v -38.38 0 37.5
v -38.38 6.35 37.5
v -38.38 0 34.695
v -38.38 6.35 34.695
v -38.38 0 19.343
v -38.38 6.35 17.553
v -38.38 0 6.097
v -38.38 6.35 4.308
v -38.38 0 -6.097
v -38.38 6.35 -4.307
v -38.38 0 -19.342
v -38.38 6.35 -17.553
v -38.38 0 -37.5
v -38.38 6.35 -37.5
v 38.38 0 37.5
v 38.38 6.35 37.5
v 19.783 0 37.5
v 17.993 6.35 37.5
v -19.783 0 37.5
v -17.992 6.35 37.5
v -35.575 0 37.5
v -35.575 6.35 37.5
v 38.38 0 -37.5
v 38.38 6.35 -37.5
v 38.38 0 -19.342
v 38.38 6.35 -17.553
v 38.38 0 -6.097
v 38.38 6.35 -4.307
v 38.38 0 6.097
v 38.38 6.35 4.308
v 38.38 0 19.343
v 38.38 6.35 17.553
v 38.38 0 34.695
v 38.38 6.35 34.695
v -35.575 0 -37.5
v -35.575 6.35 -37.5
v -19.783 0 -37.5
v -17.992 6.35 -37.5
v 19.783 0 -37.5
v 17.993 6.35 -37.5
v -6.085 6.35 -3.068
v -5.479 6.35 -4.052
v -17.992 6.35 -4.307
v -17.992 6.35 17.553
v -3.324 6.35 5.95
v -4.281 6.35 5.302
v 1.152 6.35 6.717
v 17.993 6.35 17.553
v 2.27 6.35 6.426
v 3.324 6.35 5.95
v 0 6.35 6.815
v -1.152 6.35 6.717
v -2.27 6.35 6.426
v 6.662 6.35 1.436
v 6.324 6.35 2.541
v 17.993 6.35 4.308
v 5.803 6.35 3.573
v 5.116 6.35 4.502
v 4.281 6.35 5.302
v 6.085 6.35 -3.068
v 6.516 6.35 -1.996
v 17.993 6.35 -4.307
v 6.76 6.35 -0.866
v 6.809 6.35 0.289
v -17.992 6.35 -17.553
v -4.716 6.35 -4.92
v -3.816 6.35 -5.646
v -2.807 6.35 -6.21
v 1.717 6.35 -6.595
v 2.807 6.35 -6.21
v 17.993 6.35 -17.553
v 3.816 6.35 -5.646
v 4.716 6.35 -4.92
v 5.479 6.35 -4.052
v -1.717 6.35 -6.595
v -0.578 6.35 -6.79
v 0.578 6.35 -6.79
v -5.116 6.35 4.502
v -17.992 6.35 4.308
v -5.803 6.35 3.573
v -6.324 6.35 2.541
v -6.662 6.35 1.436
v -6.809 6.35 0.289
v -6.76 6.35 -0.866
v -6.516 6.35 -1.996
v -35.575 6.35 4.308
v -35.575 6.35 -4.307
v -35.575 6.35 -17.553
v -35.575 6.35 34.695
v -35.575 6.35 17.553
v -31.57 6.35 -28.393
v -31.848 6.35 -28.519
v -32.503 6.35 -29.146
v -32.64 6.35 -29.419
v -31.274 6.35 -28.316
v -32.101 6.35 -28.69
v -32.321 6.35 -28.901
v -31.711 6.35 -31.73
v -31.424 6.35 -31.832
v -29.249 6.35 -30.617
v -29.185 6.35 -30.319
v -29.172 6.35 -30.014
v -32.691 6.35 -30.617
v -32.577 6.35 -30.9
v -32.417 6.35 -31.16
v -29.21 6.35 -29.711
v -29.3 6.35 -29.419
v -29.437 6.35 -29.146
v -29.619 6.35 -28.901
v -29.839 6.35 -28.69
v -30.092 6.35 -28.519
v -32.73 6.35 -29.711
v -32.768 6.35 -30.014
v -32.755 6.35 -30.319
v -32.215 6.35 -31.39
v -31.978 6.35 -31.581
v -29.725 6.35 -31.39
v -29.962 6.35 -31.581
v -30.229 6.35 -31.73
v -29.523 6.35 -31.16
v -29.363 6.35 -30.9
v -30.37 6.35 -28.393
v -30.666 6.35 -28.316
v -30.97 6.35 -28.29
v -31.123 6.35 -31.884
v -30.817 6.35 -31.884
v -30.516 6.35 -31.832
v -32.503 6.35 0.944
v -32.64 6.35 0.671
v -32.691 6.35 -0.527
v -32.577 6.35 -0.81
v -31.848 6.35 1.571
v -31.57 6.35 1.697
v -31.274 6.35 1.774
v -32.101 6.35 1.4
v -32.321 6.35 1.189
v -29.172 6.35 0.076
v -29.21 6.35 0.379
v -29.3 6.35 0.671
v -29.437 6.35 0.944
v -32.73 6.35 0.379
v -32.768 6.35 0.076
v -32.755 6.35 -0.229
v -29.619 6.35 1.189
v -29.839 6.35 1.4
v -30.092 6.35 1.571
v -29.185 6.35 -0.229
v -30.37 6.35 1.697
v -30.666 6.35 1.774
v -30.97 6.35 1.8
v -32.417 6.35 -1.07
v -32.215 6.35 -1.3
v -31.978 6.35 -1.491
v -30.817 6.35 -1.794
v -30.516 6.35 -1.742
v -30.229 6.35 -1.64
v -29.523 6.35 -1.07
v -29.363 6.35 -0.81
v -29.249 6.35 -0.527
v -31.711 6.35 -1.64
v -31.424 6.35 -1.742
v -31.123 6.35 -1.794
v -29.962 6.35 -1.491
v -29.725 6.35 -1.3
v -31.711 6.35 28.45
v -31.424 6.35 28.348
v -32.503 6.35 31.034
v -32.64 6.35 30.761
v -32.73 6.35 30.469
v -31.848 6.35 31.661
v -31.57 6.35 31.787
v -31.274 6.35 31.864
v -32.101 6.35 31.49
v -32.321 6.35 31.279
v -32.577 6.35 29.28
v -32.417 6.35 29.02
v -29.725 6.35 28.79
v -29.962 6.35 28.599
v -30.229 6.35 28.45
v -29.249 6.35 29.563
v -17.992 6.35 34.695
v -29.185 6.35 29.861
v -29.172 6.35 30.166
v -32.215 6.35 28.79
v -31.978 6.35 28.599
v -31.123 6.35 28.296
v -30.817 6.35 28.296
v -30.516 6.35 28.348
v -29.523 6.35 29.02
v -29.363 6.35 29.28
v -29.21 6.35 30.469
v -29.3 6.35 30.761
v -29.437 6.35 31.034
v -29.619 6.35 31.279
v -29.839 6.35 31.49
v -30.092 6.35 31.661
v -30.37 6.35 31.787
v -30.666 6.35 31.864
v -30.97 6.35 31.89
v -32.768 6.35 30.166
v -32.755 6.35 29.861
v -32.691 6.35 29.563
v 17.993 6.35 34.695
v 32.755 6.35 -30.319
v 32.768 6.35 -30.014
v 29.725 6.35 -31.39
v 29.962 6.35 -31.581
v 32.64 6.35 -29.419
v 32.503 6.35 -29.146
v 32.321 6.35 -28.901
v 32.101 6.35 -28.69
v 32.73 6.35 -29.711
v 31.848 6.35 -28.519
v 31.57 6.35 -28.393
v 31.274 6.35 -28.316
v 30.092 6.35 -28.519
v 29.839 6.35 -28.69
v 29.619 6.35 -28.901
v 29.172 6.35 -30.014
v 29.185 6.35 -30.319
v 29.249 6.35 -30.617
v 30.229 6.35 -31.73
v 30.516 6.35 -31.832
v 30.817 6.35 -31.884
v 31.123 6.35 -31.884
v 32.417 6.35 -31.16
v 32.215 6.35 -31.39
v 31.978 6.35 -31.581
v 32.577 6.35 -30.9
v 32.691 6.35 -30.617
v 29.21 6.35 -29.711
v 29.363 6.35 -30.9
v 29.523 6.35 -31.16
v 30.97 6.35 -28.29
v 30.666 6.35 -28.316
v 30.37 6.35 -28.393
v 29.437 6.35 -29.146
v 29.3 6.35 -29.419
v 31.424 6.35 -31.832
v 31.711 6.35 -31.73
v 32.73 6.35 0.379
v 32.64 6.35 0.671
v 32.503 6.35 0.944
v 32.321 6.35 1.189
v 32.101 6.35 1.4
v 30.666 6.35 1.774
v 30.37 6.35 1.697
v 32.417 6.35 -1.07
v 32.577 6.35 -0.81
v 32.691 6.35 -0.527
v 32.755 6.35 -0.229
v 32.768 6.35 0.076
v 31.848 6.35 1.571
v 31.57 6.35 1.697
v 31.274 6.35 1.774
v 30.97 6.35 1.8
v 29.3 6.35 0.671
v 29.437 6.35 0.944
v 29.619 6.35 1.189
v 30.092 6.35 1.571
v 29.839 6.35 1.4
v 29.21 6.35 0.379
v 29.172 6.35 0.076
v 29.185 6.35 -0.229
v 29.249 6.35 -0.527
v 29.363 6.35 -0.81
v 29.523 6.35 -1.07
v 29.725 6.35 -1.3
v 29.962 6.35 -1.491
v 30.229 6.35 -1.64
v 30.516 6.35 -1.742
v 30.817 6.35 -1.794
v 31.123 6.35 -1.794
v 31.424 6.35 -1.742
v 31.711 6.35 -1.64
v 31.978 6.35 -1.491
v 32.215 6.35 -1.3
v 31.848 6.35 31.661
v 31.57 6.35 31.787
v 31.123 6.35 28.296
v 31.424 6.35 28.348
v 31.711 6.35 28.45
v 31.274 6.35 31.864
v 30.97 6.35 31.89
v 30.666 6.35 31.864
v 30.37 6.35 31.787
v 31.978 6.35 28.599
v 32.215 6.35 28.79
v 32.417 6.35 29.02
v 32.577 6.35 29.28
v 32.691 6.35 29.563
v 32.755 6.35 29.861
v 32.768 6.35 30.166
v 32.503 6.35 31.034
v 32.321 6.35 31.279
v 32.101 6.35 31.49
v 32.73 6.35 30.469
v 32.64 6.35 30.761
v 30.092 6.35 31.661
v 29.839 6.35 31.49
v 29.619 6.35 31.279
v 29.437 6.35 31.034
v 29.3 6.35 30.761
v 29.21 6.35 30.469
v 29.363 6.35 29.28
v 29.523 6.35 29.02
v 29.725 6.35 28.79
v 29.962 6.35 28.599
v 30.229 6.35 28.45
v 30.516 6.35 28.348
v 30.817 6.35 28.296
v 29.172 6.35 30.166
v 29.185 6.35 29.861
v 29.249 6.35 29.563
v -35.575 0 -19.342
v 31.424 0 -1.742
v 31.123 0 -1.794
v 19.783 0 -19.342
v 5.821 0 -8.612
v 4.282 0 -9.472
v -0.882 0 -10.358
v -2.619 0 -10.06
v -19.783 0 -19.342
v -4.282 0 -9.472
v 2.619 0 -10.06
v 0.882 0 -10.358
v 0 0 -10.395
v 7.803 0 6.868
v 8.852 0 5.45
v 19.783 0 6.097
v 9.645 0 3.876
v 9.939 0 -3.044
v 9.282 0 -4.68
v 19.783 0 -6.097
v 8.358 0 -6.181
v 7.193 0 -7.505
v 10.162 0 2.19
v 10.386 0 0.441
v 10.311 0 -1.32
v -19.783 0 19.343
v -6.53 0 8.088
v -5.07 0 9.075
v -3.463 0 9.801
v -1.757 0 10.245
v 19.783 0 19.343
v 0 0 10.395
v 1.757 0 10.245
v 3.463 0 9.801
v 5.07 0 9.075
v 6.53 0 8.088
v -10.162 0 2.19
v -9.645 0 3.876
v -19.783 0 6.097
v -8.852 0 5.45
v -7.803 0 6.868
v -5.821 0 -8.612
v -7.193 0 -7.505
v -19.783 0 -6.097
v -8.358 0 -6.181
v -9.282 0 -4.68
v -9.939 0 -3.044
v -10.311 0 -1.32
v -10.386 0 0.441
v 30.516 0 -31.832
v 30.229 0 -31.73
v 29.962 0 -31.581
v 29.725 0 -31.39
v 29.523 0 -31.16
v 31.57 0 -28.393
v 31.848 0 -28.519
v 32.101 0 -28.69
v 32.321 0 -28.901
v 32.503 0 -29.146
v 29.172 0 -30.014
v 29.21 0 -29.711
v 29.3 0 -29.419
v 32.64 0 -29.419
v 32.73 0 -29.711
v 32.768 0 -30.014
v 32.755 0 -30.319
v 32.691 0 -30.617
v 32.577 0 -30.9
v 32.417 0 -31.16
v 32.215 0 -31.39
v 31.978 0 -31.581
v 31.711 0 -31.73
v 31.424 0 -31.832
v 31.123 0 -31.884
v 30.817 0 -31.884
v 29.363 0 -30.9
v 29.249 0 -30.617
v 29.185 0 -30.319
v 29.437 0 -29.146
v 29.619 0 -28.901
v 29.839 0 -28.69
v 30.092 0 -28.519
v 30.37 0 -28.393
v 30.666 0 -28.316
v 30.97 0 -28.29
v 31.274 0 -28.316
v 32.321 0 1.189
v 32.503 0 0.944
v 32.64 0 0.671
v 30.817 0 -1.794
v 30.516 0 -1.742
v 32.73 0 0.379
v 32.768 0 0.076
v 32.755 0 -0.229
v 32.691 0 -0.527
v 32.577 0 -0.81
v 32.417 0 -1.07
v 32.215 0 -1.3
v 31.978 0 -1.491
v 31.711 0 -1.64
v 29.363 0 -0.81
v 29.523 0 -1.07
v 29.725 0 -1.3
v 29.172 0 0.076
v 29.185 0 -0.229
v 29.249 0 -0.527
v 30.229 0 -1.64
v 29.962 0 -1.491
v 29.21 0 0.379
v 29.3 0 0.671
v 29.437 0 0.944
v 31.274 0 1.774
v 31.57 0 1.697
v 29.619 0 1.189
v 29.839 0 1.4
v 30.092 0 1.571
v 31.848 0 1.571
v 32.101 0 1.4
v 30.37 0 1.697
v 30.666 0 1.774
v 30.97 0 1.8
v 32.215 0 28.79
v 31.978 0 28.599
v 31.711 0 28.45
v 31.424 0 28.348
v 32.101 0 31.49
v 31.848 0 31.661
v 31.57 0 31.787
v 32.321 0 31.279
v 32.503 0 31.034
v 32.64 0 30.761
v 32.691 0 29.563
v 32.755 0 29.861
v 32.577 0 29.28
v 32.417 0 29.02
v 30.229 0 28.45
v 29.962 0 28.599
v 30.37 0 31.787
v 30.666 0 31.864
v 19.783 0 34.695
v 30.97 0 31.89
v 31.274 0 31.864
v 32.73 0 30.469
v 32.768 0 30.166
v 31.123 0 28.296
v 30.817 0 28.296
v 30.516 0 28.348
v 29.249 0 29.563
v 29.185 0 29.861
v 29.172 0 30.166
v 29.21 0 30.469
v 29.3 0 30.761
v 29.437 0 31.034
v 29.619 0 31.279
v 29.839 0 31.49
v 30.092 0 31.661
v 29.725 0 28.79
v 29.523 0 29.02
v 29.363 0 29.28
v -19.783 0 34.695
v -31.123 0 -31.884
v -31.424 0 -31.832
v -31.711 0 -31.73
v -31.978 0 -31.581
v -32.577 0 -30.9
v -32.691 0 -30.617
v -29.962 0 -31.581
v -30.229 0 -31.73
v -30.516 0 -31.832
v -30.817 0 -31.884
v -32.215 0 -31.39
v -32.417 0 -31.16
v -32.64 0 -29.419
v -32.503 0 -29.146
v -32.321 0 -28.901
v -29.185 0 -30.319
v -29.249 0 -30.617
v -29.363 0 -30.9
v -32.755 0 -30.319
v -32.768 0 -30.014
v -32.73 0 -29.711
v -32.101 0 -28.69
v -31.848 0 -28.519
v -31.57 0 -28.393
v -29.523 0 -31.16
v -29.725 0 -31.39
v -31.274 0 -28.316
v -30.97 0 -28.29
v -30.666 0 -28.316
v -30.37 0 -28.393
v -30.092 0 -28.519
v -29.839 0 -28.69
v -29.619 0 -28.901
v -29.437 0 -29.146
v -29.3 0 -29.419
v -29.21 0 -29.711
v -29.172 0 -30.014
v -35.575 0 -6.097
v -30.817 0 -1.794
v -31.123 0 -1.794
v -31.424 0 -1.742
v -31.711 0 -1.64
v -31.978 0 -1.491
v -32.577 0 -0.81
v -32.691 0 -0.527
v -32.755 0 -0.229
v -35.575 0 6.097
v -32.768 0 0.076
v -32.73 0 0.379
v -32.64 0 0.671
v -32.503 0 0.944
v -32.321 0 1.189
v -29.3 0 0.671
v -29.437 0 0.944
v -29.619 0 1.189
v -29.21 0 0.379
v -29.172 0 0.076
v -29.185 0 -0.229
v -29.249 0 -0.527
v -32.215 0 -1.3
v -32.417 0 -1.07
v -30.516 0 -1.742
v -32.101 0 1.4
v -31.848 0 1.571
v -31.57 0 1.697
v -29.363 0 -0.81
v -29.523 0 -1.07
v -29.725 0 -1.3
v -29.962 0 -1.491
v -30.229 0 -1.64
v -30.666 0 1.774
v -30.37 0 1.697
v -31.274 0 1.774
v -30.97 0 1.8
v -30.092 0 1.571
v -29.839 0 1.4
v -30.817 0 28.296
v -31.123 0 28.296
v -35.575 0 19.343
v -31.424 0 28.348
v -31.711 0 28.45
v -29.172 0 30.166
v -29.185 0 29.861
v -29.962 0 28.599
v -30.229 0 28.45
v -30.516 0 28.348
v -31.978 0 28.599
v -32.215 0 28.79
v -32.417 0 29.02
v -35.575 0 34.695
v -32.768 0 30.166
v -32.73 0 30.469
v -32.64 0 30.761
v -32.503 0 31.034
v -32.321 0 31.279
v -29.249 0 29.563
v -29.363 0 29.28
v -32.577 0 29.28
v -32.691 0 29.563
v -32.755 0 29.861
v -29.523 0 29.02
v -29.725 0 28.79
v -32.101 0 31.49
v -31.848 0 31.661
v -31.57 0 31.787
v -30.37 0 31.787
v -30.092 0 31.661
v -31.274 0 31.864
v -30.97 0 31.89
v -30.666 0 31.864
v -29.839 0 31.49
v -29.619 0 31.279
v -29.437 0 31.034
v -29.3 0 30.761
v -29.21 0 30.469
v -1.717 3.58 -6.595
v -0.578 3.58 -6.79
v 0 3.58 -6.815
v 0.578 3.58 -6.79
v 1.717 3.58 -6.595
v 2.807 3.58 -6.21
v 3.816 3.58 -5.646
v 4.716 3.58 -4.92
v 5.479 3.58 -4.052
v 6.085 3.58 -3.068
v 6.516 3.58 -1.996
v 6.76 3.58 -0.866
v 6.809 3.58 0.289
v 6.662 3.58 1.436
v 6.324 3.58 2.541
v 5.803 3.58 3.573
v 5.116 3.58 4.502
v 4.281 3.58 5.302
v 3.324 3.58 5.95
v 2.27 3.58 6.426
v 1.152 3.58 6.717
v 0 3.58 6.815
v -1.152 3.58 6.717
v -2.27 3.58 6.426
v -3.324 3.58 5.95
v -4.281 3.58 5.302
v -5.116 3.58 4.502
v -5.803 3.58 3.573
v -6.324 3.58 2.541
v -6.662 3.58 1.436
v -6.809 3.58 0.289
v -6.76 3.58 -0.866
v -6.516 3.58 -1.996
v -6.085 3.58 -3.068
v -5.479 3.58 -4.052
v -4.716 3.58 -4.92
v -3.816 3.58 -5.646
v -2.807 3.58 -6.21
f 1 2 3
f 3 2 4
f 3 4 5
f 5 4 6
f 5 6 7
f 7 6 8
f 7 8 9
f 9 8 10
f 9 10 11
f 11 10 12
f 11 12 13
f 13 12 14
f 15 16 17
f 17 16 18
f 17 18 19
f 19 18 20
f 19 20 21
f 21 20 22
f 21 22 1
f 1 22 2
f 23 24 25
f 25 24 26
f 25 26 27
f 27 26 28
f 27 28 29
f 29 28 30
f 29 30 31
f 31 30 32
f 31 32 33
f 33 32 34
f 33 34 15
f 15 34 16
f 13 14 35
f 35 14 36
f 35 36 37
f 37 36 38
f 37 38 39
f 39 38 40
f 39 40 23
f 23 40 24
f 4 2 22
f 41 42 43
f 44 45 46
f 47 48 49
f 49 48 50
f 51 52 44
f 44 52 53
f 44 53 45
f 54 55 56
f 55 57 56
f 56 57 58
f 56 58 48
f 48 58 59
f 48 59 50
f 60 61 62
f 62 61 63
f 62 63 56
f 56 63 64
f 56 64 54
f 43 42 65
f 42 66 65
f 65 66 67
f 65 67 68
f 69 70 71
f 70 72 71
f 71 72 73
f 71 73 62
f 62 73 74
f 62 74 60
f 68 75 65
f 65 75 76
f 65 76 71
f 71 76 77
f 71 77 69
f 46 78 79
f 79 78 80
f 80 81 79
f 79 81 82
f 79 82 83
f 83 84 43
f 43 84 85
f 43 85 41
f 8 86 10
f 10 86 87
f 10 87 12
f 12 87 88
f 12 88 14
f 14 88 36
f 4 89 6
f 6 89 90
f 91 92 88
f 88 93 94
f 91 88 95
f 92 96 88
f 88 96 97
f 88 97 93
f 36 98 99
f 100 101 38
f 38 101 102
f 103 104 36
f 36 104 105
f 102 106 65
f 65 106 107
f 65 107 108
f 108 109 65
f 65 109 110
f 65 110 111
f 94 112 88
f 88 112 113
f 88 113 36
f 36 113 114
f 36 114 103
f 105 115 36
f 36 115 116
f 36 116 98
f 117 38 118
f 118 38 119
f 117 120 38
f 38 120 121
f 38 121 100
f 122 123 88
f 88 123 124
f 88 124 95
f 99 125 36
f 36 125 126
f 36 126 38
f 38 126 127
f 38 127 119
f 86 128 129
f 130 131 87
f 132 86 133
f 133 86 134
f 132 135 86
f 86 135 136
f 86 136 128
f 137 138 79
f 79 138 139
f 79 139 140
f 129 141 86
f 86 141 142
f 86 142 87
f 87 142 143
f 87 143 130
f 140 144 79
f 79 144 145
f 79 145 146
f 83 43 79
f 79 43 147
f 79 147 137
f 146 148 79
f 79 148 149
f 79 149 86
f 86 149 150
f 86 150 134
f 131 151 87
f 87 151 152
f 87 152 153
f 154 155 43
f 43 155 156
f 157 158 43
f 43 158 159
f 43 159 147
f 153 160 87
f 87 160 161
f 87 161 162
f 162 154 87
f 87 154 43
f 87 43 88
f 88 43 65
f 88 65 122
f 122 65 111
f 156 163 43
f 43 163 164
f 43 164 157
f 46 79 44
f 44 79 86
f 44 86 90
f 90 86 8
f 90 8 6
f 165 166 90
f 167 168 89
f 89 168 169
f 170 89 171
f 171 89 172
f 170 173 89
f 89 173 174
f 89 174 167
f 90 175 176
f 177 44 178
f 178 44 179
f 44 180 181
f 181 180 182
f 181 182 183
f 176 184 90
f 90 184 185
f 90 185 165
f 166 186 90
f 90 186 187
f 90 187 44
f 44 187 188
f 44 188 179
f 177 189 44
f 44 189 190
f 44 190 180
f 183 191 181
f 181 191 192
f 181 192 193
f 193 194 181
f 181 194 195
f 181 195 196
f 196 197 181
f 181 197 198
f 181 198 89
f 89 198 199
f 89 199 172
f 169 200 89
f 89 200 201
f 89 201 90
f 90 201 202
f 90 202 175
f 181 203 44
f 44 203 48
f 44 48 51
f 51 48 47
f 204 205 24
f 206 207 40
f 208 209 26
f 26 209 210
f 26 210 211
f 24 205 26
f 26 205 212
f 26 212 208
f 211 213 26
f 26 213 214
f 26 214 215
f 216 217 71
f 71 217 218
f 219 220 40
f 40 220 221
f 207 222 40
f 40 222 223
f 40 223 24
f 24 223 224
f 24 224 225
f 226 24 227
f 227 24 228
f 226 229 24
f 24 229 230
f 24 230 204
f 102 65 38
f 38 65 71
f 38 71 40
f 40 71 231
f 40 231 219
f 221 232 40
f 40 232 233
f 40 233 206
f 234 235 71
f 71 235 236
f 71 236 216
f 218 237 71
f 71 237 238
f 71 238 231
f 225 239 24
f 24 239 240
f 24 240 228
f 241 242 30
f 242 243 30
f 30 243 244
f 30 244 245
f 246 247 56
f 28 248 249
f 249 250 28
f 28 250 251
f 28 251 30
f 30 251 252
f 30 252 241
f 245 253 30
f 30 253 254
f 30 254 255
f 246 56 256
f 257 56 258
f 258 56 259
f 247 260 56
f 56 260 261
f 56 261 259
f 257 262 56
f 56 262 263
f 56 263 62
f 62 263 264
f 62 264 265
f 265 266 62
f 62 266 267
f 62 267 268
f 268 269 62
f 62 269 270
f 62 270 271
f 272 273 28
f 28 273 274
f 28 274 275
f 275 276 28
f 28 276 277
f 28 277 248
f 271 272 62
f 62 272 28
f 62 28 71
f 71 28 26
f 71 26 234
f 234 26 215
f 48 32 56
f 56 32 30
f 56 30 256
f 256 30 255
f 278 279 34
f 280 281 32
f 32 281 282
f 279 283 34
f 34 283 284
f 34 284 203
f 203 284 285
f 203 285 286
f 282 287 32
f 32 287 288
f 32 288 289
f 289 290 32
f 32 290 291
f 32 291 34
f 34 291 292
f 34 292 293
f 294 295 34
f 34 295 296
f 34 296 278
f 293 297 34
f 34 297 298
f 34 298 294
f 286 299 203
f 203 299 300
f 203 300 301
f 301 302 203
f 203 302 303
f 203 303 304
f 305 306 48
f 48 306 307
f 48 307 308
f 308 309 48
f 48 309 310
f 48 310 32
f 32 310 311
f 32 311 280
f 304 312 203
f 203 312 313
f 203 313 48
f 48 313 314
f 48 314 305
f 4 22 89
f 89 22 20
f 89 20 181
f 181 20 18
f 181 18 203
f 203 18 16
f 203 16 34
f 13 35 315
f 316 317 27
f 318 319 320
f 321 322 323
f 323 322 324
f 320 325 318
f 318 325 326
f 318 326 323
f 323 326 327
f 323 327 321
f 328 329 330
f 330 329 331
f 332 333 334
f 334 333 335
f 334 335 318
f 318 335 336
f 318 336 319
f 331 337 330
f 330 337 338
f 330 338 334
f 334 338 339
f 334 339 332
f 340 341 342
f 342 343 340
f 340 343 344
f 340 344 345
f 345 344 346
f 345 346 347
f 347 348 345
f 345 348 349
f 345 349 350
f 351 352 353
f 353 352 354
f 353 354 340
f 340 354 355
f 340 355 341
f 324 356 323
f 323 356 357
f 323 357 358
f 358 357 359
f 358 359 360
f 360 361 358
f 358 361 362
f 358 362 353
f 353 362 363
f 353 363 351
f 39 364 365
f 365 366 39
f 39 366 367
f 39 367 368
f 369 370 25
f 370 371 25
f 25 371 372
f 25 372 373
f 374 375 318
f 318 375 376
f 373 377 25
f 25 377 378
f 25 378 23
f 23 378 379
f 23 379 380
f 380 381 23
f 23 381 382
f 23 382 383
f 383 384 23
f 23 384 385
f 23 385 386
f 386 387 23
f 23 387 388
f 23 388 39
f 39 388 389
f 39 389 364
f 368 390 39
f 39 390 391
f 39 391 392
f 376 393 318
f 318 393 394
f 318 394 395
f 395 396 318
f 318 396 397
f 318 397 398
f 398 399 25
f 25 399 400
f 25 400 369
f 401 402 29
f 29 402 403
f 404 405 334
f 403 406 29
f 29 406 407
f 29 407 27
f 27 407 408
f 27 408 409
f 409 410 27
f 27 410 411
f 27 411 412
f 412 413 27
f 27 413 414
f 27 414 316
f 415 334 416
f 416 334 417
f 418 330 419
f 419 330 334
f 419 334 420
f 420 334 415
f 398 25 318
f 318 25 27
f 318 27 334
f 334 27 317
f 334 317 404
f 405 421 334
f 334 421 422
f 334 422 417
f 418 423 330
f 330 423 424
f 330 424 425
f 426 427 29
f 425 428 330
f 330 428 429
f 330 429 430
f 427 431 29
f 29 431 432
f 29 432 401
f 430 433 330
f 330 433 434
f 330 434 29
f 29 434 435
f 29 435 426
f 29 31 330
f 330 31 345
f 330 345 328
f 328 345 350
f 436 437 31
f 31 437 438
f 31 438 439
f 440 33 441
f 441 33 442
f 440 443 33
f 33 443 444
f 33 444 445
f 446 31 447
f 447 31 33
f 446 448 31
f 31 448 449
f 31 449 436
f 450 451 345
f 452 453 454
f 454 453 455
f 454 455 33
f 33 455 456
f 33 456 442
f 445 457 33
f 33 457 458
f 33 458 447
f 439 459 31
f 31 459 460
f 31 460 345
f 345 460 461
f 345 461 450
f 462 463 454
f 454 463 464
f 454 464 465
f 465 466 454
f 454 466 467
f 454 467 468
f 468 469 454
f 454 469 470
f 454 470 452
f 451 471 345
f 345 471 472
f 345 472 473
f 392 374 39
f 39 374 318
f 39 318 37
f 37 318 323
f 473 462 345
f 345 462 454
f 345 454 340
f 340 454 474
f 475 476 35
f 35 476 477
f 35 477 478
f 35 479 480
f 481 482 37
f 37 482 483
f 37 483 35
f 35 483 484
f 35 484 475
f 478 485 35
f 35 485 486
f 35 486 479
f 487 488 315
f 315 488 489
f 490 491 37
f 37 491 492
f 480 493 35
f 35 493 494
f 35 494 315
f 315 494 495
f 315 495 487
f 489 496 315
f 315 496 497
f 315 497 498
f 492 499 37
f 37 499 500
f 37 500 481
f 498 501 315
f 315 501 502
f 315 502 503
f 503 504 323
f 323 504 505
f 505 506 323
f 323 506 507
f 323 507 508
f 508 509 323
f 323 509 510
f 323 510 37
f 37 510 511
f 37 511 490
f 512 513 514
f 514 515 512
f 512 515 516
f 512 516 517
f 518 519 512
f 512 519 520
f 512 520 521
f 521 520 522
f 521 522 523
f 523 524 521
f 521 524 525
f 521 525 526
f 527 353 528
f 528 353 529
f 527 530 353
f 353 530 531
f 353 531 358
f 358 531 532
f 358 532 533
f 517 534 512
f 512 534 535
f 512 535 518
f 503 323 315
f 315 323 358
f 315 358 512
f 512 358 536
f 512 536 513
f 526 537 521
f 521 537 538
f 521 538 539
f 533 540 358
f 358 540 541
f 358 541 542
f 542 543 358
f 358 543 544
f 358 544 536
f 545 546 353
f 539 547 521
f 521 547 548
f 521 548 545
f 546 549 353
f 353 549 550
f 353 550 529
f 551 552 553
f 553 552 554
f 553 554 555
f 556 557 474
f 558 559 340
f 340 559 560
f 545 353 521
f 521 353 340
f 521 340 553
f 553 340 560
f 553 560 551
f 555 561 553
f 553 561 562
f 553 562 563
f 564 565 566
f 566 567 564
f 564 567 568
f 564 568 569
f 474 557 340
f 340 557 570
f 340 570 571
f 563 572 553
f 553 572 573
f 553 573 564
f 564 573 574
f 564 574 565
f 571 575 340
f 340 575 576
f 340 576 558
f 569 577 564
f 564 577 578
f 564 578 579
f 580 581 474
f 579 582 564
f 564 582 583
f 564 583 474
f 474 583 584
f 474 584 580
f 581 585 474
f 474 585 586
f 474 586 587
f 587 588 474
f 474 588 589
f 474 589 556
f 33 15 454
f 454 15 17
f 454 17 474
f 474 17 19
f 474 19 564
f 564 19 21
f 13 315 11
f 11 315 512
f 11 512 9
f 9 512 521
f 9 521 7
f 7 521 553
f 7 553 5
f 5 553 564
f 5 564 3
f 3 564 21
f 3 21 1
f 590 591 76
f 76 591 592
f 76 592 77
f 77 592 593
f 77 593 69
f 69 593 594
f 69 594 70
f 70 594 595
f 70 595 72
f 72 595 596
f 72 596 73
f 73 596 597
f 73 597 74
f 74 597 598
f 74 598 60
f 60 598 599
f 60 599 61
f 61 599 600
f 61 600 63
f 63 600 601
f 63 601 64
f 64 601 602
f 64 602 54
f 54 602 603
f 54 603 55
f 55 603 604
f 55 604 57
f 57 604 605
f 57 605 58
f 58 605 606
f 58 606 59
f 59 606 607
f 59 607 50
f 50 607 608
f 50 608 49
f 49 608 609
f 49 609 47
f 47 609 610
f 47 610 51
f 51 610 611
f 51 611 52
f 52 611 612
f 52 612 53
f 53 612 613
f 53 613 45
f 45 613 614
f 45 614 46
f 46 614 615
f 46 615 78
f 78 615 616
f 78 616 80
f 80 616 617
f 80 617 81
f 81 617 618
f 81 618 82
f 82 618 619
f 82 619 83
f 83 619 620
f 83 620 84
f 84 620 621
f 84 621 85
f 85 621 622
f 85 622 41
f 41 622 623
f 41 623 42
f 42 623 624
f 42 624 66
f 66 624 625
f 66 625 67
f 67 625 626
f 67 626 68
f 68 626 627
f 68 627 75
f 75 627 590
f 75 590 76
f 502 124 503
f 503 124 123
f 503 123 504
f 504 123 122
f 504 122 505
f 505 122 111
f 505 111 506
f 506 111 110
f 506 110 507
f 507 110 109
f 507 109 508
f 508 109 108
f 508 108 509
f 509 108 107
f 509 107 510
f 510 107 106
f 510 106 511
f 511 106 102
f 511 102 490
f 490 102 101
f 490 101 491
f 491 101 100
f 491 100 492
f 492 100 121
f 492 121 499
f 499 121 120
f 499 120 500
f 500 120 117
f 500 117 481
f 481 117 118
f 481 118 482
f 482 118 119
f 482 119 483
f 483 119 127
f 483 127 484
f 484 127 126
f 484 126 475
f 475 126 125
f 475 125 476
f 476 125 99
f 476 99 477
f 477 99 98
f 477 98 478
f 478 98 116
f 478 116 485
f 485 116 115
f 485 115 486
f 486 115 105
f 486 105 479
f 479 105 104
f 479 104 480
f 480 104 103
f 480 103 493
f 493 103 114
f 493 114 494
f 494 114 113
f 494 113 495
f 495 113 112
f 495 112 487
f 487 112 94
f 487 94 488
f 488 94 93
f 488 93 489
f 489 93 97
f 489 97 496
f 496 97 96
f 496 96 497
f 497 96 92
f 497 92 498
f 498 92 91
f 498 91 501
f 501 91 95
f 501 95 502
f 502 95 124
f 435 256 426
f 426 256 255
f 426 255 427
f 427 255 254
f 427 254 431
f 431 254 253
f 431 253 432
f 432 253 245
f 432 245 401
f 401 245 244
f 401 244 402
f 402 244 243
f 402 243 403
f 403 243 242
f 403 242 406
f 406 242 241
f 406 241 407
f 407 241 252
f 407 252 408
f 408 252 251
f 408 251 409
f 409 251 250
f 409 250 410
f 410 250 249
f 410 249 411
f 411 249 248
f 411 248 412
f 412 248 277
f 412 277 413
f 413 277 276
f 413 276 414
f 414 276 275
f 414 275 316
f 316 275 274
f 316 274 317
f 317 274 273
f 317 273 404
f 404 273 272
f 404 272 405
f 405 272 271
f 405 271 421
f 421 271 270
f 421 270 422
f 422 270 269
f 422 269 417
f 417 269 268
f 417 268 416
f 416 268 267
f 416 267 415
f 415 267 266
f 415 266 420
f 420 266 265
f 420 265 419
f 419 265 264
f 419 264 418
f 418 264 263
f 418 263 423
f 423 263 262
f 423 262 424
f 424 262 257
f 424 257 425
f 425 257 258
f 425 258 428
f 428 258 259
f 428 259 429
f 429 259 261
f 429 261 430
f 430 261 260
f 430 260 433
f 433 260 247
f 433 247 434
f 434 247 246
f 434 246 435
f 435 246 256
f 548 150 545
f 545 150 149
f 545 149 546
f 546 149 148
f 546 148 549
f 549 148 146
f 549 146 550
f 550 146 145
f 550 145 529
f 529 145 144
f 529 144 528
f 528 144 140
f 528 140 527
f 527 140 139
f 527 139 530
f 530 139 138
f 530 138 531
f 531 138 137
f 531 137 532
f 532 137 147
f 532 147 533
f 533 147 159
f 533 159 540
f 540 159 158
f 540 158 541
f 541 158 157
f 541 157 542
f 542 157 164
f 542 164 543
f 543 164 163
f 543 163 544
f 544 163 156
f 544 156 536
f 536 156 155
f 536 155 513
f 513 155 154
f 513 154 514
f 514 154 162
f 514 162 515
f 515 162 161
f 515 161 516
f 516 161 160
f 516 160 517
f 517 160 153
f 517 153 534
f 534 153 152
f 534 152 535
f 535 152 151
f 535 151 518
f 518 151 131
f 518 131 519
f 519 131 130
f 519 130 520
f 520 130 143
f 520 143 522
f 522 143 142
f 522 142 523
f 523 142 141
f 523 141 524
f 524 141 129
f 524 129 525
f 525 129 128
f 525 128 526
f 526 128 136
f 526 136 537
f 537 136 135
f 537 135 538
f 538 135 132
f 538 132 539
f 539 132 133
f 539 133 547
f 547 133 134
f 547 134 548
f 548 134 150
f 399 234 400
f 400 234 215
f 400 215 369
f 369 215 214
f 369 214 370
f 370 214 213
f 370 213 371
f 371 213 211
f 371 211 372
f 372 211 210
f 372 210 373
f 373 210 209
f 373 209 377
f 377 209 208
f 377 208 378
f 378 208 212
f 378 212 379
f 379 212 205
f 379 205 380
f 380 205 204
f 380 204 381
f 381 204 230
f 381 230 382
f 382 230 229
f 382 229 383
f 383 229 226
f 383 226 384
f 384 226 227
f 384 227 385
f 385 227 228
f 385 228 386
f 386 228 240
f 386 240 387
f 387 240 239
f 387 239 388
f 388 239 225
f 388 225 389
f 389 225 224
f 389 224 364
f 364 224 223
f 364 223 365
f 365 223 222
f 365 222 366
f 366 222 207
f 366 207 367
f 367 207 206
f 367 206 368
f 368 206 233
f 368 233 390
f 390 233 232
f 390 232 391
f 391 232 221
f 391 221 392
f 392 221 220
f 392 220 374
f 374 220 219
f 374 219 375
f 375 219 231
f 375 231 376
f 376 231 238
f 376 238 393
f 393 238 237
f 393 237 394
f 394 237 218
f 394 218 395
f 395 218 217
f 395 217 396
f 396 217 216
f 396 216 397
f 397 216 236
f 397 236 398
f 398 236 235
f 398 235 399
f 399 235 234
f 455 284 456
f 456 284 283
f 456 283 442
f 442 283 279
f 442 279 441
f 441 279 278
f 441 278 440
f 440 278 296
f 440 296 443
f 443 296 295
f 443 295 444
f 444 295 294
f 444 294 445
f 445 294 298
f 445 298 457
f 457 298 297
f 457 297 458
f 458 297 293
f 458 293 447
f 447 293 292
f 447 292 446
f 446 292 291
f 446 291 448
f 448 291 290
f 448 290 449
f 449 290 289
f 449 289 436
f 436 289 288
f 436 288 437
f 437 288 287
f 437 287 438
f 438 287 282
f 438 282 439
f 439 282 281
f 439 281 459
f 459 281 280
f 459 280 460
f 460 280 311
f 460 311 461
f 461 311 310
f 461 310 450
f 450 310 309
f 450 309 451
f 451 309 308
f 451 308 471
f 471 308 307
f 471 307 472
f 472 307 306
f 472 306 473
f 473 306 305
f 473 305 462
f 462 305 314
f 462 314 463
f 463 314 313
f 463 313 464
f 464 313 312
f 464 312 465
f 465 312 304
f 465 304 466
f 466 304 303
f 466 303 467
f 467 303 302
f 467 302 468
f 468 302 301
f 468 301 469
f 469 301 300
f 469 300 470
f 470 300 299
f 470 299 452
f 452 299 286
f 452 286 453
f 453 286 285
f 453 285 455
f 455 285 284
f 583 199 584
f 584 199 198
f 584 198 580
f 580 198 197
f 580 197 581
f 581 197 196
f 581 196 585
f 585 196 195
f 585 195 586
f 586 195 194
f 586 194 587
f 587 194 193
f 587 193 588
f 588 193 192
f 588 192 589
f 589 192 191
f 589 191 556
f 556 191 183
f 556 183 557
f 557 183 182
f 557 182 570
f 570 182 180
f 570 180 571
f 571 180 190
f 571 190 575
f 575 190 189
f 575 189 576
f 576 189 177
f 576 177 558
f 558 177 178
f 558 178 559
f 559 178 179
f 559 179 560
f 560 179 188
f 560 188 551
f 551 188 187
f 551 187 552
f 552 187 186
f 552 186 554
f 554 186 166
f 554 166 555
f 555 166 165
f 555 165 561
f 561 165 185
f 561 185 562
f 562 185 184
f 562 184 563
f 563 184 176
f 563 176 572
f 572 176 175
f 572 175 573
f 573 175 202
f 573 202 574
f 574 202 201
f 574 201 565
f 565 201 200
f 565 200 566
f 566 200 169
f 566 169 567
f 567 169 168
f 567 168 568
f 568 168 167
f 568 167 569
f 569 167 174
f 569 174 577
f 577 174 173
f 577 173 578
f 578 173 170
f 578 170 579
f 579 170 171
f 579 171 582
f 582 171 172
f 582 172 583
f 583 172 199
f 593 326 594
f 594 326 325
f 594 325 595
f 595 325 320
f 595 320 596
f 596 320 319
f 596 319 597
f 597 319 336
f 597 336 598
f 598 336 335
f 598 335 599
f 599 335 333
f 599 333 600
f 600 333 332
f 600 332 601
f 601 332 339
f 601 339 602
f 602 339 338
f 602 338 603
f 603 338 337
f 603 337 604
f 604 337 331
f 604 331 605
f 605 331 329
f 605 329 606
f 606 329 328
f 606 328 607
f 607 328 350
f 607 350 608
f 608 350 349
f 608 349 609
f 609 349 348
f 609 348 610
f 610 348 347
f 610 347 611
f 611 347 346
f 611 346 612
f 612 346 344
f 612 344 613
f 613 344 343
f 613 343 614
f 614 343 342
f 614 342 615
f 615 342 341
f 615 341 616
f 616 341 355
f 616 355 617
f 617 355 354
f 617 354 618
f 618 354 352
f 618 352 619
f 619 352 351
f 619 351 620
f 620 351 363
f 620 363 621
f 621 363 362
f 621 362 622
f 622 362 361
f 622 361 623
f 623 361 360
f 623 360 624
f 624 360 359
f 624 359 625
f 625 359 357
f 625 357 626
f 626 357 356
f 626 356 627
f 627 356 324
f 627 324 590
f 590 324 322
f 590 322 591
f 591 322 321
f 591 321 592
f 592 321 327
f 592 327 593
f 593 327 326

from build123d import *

# Parameters (mm, degrees)
SKETCH1_W           = 76.76
SKETCH1_H           = 75
BOSS_EXTRUDE1_DEPTH = 6.35
SKETCH2_R           = 6.815
CUT_EXTRUDE1_DEPTH  = 55.033294366
SKETCH3_R           = 1.8
CUT_EXTRUDE2_DEPTH  = 55.033294366
CHAMFER1_SIZE       = 3.58


with BuildPart() as part:
    # Sketch1 → Boss-Extrude1 (new body)
    with BuildSketch(Plane(origin=(0, 0, 0), x_dir=(1, 0, 0), z_dir=(0, 1, 0))):
        Rectangle(SKETCH1_W, SKETCH1_H)
    extrude(amount=BOSS_EXTRUDE1_DEPTH)

    # Sketch2 → Cut-Extrude1 (cut, through all)
    with BuildSketch(Plane(origin=(0, 6.35, 0), x_dir=(1, 0, 0), z_dir=(0, 1, 0))):
        with Locations(Location((0, 0, 0), (0, 0, 270))):
            Circle(SKETCH2_R)
    extrude(amount=-CUT_EXTRUDE1_DEPTH, mode=Mode.SUBTRACT)

    # Sketch3 → Cut-Extrude2 (cut, through all)
    with BuildSketch(Plane(origin=(0, 6.35, 0), x_dir=(1, 0, 0), z_dir=(0, 1, 0))):
        with Locations(Location((-30.97, 30.09, 0), (0, 0, 270))):
            Circle(SKETCH3_R)
        with Locations(Location((-30.97, -30.09, 0), (0, 0, 270))):
            Circle(SKETCH3_R)
        with Locations(Location((30.97, -30.09, 0), (0, 0, 270))):
            Circle(SKETCH3_R)
        with Locations(Location((30.97, 30.09, 0), (0, 0, 270))):
            Circle(SKETCH3_R)
        with Locations(Location((-30.97, 0, 0), (0, 0, 270))):
            Circle(SKETCH3_R)
        with Locations(Location((30.97, 0, 0), (0, 0, 270))):
            Circle(SKETCH3_R)
    extrude(amount=-CUT_EXTRUDE2_DEPTH, mode=Mode.SUBTRACT)

    # Chamfer1
    chamfer1_edges = [part.edges().sort_by_distance(p)[0] for p in [
        (0, 0, -6.815),
    ]]
    chamfer(chamfer1_edges, length=CHAMFER1_SIZE)


solid = part.part
